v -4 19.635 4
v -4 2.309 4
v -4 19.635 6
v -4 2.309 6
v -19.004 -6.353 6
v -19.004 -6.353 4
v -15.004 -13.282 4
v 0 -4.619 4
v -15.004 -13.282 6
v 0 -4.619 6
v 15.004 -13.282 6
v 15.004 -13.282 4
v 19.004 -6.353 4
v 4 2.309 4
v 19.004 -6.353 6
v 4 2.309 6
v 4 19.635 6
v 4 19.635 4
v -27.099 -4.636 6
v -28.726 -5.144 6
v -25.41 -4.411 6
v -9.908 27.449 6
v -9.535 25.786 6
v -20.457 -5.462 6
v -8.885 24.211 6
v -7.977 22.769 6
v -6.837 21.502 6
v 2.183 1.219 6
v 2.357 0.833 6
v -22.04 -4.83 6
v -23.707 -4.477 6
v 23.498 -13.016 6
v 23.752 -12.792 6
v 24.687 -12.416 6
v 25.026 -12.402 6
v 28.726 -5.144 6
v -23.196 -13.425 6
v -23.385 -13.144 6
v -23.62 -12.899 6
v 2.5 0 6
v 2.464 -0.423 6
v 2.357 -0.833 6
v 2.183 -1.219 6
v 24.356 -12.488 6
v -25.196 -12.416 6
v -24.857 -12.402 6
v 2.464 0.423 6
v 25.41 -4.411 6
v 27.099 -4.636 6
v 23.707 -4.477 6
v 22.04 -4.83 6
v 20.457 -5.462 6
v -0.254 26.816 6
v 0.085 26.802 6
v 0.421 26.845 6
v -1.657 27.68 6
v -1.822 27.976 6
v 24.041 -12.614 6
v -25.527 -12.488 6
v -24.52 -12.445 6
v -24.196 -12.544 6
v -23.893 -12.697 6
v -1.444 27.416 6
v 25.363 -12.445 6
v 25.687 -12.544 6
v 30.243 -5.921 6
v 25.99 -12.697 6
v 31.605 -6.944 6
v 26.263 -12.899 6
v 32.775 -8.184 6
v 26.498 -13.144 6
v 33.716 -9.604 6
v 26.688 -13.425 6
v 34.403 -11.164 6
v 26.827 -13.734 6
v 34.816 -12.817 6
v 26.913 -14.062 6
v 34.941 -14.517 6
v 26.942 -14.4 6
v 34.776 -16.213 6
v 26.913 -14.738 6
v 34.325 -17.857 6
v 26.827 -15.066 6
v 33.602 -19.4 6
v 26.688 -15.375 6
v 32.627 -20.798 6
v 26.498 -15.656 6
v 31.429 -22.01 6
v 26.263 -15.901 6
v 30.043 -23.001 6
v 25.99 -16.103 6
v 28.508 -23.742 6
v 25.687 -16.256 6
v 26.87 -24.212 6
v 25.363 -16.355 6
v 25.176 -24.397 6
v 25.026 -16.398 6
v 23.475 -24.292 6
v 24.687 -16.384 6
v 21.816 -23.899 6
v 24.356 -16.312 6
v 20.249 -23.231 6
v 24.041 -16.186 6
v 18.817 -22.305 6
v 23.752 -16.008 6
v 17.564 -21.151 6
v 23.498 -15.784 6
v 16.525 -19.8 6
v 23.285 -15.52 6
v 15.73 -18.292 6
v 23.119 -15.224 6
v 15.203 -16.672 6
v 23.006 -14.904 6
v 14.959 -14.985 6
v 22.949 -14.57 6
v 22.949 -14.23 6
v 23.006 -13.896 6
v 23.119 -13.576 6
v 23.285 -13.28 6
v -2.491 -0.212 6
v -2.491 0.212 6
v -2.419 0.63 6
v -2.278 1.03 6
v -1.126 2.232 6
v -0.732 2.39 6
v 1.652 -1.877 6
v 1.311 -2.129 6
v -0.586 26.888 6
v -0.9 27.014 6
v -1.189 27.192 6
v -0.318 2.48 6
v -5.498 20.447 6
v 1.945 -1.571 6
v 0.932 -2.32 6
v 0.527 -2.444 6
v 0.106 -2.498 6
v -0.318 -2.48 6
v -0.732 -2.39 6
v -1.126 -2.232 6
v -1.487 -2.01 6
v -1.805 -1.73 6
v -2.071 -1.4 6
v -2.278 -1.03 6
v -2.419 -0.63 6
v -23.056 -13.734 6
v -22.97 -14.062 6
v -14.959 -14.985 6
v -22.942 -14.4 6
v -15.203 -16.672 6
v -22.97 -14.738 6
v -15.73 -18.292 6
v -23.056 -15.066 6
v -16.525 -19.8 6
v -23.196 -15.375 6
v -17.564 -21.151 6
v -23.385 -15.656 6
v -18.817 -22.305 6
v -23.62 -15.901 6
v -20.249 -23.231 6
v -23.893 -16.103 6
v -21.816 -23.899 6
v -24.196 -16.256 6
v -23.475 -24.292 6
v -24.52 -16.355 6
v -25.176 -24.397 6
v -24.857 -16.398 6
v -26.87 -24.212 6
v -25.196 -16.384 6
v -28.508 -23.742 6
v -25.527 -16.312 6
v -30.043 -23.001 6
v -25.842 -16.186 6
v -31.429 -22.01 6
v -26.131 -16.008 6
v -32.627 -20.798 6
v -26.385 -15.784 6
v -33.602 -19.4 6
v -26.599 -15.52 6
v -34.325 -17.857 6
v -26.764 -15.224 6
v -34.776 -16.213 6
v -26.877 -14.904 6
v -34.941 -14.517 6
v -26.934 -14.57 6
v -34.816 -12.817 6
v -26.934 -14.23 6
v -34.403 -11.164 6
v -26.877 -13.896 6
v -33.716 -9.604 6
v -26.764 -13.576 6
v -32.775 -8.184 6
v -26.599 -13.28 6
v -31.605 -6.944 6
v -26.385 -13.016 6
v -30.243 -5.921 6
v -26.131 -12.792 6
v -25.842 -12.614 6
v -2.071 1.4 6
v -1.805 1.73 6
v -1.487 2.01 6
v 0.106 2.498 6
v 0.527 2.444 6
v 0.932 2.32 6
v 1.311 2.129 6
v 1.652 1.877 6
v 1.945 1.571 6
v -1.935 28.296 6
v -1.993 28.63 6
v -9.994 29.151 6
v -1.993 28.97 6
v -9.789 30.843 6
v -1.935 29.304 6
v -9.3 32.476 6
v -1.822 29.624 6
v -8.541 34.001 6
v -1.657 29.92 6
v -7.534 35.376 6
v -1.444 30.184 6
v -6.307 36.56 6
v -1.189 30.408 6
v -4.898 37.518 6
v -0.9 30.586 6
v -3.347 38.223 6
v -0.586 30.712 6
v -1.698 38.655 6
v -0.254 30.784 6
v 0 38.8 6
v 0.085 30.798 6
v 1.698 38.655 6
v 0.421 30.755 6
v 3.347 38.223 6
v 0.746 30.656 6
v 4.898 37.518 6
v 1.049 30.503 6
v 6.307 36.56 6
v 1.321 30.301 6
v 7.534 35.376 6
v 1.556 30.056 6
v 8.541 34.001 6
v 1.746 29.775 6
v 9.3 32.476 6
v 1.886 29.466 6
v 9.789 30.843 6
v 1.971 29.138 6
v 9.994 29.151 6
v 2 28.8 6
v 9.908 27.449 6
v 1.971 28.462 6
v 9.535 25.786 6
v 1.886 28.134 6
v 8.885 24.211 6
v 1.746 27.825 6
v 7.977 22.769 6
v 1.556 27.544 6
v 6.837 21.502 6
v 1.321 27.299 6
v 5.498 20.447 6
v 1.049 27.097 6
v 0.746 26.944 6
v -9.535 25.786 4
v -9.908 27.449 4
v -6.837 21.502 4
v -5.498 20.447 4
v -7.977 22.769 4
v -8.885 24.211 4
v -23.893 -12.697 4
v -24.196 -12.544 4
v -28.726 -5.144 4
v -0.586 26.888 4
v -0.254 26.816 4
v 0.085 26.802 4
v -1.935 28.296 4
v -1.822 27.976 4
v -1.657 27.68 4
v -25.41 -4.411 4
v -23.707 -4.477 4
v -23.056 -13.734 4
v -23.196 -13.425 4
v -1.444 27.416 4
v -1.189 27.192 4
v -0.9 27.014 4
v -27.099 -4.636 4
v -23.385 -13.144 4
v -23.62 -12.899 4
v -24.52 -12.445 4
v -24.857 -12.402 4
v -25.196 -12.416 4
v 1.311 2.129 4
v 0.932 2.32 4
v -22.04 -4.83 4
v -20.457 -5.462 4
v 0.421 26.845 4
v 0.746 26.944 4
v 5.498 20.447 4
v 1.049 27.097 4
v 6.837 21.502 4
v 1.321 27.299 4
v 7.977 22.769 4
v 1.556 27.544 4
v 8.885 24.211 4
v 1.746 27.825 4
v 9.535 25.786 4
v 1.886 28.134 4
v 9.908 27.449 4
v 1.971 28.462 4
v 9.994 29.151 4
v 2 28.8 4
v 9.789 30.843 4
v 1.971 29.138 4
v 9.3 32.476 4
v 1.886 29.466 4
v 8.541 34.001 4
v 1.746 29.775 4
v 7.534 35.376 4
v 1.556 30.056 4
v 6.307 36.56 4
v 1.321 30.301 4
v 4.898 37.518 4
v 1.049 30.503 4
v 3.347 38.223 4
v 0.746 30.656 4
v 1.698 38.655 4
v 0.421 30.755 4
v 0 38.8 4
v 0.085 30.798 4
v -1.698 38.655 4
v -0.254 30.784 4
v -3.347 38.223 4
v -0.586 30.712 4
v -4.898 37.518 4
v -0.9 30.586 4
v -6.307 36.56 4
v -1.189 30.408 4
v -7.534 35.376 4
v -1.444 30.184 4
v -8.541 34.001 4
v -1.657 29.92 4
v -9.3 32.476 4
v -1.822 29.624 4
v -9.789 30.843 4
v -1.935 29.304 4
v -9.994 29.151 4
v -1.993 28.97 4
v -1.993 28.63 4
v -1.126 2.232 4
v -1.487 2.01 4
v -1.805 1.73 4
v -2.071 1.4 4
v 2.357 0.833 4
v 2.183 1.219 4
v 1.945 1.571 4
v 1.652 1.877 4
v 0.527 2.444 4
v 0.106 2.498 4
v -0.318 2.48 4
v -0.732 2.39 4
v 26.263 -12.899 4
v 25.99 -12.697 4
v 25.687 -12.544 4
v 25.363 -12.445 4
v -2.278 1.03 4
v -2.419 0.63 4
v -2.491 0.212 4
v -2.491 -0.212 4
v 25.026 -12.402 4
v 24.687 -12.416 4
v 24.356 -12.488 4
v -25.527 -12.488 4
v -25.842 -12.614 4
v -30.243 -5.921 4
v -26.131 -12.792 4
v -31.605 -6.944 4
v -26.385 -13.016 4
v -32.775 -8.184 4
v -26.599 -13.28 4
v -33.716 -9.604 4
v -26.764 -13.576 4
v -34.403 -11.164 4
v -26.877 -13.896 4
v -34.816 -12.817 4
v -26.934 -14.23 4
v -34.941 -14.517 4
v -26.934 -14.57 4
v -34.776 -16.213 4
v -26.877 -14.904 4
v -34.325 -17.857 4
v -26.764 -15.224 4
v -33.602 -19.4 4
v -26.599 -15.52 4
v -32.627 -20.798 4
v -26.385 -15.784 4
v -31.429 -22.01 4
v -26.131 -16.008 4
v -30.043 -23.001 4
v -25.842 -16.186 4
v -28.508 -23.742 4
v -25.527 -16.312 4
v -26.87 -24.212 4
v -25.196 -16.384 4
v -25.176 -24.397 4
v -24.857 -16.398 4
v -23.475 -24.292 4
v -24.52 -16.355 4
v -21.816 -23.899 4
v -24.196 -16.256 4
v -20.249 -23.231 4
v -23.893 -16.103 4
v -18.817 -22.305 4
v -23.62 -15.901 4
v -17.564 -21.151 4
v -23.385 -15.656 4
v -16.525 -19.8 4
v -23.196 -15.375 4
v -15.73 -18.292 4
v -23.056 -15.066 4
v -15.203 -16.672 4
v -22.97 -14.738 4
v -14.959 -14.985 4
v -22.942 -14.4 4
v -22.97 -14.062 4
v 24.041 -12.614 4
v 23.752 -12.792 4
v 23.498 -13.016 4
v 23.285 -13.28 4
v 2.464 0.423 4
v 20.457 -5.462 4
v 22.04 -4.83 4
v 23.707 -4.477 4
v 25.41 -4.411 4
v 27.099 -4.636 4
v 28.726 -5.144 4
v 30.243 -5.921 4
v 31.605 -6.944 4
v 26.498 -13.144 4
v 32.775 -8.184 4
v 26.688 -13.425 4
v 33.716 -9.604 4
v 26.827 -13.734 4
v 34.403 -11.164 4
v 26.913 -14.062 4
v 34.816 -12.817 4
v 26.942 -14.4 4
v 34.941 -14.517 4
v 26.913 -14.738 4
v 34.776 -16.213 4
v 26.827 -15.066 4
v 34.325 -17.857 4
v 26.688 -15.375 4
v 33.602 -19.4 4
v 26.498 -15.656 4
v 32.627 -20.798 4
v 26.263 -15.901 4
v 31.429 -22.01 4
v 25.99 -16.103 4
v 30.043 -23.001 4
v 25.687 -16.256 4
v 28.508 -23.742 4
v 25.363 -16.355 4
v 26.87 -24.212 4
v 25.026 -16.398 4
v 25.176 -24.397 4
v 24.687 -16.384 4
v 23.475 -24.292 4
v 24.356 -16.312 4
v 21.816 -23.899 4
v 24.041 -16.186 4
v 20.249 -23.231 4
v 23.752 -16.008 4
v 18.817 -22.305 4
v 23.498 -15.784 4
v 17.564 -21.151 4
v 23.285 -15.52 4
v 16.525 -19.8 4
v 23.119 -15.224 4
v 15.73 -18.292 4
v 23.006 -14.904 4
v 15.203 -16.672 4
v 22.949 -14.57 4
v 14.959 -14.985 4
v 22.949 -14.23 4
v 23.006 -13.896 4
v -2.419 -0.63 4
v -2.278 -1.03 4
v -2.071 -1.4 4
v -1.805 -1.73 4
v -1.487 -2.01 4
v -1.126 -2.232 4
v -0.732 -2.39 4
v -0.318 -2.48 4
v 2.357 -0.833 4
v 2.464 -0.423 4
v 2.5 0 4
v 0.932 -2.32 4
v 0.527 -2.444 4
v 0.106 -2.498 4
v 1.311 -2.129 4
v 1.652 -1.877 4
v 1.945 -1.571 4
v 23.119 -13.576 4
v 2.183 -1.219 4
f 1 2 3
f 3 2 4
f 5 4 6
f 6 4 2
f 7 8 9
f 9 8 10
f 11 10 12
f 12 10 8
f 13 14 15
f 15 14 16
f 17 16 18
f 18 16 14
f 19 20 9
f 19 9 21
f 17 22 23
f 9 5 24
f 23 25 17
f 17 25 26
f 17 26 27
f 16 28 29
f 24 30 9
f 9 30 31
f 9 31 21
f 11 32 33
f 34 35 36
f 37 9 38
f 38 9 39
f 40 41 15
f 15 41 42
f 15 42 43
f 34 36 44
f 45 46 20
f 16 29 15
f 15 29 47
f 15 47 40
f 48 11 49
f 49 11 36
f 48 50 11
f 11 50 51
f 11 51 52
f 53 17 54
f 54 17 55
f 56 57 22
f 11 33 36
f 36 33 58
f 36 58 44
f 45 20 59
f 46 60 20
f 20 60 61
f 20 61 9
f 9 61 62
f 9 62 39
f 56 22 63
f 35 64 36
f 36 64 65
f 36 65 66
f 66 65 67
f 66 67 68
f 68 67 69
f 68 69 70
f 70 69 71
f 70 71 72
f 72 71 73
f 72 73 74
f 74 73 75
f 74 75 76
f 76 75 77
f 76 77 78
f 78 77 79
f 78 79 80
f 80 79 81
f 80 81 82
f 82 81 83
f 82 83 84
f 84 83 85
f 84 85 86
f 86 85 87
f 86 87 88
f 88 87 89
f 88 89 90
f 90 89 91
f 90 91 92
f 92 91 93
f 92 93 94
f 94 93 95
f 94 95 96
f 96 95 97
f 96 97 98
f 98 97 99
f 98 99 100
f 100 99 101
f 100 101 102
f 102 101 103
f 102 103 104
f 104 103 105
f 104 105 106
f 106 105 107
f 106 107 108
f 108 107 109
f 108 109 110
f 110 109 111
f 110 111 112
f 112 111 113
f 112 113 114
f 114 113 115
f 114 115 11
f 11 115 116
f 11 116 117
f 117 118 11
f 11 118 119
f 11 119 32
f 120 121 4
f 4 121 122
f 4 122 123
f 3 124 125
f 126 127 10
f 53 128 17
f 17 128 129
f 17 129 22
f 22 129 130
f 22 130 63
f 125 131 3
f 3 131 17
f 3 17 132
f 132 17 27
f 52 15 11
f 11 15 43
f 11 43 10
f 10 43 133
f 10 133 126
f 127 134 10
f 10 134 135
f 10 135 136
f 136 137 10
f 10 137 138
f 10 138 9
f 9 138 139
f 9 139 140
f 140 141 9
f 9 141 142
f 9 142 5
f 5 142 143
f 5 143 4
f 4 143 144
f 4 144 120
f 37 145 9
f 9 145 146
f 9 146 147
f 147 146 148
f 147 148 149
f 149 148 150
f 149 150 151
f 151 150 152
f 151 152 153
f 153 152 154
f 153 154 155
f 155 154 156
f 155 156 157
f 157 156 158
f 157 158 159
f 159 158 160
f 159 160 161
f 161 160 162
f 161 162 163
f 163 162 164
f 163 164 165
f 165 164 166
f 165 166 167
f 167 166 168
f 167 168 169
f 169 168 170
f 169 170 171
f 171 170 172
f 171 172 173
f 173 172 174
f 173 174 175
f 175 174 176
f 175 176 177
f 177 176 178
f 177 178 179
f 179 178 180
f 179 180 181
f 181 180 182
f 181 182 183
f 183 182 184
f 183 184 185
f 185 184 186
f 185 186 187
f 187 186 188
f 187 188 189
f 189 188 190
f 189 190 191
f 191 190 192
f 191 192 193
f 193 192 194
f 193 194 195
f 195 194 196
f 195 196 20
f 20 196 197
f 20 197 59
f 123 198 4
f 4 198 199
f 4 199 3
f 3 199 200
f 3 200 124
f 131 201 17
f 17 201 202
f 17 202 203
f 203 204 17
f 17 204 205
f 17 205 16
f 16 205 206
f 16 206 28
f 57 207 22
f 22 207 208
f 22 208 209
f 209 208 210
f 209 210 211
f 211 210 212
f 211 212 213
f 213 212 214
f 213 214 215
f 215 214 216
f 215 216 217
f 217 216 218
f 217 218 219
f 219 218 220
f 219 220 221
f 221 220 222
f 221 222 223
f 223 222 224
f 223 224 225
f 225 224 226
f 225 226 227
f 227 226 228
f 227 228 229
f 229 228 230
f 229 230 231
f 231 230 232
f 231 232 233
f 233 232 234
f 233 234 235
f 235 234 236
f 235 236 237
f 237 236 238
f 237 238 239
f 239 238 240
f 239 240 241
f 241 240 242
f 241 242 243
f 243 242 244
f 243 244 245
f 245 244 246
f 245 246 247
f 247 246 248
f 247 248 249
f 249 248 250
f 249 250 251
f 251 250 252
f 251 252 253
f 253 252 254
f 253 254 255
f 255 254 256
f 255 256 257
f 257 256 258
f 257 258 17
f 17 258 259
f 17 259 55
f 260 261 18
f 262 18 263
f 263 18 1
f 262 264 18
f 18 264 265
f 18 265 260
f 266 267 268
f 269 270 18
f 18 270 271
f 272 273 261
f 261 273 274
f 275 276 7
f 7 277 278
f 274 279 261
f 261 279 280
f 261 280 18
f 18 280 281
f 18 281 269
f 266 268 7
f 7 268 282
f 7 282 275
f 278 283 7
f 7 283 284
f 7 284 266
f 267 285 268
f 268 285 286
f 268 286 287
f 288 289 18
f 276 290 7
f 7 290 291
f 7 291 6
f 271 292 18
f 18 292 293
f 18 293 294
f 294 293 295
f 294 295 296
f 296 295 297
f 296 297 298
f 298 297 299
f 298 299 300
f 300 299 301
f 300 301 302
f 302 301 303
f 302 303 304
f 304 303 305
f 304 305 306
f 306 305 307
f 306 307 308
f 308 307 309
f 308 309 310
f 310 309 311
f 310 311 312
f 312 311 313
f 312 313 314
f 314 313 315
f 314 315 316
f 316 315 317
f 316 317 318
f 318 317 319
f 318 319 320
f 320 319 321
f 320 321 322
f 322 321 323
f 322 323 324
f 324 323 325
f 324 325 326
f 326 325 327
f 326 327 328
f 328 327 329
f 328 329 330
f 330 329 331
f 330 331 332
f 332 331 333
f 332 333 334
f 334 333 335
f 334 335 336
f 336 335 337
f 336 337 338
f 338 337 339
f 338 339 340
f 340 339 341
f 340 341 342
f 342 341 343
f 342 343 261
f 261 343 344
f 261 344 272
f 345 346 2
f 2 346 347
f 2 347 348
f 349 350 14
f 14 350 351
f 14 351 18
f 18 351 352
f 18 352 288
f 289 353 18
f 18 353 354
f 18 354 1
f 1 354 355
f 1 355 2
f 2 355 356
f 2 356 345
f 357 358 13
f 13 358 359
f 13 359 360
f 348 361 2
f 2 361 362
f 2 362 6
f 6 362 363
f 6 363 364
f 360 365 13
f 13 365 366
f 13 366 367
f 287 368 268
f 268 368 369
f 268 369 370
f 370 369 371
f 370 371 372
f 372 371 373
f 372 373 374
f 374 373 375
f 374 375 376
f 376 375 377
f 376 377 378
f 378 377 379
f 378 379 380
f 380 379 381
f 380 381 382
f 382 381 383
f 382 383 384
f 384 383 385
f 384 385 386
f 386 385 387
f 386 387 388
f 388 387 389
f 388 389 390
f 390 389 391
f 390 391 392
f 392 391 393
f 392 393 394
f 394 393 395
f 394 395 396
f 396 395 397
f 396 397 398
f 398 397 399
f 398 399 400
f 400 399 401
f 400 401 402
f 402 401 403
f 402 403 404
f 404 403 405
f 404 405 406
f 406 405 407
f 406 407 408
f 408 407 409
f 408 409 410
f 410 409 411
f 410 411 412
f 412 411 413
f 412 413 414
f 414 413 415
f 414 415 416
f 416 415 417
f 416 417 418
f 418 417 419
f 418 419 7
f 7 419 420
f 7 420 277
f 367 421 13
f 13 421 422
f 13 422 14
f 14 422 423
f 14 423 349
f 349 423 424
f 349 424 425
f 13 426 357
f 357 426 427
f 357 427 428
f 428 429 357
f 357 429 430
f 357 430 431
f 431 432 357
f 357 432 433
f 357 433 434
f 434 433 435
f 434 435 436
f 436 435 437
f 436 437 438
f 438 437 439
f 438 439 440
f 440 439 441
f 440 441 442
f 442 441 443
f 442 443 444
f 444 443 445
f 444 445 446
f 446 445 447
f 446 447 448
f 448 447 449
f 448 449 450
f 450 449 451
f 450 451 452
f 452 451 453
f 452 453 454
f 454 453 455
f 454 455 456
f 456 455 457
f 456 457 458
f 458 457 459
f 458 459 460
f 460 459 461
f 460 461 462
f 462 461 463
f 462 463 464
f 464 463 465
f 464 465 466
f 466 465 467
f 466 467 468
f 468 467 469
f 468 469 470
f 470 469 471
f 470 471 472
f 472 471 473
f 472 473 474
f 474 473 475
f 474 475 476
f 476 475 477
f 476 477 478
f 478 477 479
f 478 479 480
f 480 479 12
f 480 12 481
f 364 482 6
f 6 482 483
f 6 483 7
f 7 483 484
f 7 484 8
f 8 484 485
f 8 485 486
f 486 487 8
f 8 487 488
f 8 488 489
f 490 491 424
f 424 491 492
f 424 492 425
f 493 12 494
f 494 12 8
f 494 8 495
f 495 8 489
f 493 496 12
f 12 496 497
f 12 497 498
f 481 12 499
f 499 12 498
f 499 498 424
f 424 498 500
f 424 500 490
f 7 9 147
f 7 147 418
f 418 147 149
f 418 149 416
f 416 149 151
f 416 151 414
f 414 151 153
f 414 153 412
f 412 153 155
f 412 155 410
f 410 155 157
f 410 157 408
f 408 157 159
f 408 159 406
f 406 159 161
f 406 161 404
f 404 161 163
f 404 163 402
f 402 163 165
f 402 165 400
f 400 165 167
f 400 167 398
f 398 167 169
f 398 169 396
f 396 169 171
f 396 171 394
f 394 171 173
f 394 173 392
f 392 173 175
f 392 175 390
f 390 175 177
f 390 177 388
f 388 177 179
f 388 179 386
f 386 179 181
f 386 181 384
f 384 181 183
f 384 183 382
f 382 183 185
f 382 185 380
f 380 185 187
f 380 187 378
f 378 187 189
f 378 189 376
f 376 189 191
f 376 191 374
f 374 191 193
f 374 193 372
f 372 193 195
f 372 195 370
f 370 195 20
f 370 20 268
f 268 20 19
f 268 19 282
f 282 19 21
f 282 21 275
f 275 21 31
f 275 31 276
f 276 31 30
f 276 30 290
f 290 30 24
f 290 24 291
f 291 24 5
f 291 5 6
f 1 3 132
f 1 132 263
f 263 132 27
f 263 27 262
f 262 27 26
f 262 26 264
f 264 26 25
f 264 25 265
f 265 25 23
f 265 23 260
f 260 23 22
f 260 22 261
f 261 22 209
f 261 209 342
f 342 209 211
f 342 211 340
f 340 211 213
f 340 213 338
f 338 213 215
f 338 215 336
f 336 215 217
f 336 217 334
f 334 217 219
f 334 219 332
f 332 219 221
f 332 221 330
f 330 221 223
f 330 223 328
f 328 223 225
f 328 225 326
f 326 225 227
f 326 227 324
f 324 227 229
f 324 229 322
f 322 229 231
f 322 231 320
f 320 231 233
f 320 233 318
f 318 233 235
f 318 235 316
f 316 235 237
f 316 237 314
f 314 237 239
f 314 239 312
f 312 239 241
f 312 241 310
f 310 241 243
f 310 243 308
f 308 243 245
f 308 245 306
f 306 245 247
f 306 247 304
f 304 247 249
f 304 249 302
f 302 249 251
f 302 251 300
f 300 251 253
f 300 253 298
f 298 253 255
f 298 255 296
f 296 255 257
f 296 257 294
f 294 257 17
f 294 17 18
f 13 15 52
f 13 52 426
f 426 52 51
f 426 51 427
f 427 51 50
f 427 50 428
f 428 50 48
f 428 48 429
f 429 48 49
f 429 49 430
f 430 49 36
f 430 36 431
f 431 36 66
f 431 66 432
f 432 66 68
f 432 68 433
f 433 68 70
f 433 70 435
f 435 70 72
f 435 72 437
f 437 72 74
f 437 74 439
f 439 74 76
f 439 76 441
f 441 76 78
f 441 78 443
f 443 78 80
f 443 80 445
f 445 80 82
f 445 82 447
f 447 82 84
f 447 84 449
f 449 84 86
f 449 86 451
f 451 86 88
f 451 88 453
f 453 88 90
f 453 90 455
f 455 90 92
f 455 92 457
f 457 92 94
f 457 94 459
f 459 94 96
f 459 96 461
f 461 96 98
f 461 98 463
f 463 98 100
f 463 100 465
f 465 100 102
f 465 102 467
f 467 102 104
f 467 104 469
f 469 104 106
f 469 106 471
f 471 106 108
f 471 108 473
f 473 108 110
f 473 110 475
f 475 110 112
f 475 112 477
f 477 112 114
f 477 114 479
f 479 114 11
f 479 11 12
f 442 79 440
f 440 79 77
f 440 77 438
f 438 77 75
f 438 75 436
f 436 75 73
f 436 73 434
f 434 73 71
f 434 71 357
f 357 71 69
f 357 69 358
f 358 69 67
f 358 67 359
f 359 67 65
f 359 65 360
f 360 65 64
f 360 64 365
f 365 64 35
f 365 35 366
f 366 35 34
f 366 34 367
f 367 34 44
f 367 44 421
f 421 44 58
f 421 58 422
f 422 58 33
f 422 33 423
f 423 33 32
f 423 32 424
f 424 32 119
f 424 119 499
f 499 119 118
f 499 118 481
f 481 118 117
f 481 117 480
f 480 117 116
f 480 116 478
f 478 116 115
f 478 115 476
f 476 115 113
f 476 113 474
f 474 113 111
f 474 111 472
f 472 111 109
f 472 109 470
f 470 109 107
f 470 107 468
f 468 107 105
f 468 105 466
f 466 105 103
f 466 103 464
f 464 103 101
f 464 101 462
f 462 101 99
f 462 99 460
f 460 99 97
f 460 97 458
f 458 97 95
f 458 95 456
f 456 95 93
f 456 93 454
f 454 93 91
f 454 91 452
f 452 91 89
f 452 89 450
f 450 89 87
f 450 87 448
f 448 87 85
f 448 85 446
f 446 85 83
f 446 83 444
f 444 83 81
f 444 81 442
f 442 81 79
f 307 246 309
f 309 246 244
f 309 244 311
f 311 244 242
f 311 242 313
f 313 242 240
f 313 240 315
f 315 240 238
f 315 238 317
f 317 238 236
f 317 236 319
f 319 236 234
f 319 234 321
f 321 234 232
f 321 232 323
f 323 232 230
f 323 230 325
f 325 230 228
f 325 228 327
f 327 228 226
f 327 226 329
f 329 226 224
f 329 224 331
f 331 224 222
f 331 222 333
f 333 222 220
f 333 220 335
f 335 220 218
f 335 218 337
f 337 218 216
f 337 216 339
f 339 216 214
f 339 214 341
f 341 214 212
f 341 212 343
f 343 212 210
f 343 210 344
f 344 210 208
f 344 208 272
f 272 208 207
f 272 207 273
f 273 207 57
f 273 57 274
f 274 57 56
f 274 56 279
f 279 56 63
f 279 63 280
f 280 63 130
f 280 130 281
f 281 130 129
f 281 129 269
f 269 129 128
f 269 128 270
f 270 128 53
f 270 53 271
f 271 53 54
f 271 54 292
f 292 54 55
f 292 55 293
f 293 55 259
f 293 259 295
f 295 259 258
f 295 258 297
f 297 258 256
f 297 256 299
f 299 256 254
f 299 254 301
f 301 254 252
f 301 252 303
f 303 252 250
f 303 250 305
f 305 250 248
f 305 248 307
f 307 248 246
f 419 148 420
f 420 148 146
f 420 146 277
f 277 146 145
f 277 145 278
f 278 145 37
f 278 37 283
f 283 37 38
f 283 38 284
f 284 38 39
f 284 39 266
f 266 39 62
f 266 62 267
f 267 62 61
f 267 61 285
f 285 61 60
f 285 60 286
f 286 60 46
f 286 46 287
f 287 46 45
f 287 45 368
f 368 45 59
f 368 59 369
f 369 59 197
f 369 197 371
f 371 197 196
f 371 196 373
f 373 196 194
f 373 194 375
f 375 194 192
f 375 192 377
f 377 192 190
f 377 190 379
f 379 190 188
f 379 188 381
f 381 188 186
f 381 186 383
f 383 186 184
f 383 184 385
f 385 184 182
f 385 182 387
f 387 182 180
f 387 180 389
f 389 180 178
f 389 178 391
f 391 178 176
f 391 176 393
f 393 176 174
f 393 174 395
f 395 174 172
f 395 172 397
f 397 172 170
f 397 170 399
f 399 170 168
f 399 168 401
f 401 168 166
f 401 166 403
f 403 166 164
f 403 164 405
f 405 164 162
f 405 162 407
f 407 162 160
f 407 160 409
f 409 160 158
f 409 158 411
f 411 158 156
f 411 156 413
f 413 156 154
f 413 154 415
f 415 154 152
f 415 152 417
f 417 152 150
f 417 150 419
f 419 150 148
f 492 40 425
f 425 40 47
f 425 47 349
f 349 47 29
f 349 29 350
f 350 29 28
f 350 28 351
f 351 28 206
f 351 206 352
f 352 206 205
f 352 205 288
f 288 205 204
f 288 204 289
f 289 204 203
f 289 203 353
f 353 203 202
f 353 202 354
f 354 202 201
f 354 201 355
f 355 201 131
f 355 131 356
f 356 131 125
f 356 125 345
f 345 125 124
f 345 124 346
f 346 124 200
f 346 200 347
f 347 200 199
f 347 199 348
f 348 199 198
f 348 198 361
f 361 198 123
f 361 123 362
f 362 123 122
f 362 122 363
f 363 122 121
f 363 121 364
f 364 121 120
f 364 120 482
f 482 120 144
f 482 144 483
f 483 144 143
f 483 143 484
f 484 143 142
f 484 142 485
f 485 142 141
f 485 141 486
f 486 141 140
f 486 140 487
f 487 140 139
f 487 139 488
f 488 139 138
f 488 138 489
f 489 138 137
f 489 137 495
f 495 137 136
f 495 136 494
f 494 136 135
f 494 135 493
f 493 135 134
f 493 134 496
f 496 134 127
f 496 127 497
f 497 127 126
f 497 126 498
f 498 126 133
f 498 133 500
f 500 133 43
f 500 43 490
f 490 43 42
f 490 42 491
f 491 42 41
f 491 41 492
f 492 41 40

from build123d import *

# Parameters (mm, degrees)
BOSS_EXTRUDE2_DEPTH = 10
SKETCH3_R           = 50
BOSS_EXTRUDE3_DEPTH = 10
SKETCH4_R           = 10
BOSS_EXTRUDE4_DEPTH = 90
CUT_EXTRUDE1_START  = -30
SKETCH5_R           = 10
CUT_EXTRUDE1_DEPTH  = 30
SKETCH6_R           = 13
CUT_EXTRUDE2_DEPTH  = 10
SKETCH7_R           = 10
BOSS_EXTRUDE5_DEPTH = 30
SKETCH8_R           = 20.369169003
BOSS_EXTRUDE6_DEPTH = 10
CUT_EXTRUDE3_START  = -100
SKETCH9_R           = 10
CUT_EXTRUDE3_DEPTH  = 100
SKETCH10_R          = 10
CUT_EXTRUDE4_DEPTH  = 10
SKETCH11_R          = 12.5
CUT_EXTRUDE5_DEPTH  = 10
SCALE1_SCALE        = 0.2


with BuildPart() as part:
    # Sketch1 → Boss-Extrude2 (new body)
    with BuildSketch(Plane.XY):
        Polygon((20, 144), (-20, 144), (-20, 11.547005384), (-134.707658145, -54.679491924), (-114.707658145, -89.320508076), (0, -23.094010768), (114.707658145, -89.320508076), (134.707658145, -54.679491924), (20, 11.547005384), align=None)
    extrude(amount=BOSS_EXTRUDE2_DEPTH)

    # Sketch3 → Boss-Extrude3 (add)
    with BuildSketch(Plane.XY.offset(10)):
        with Locations((-124.707658145, -72)):
            Circle(SKETCH3_R)
        with Locations((0, 144)):
            Circle(SKETCH3_R)
        with Locations((124.707658145, -72)):
            Circle(SKETCH3_R)
    extrude(amount=-BOSS_EXTRUDE3_DEPTH)

    # Sketch4 → Boss-Extrude4 (add)
    with BuildSketch(Plane.XY.offset(10)):
        with Locations(Location((0, 144, 0), (0, 0, 180))):
            Circle(SKETCH4_R)
        with Locations(Location((124.707658145, -72, 0), (0, 0, 180))):
            Circle(SKETCH4_R)
        with Locations(Location((-124.707658145, -72, 0), (0, 0, 180))):
            Circle(SKETCH4_R)
    extrude(amount=BOSS_EXTRUDE4_DEPTH)

    # Sketch5 → Cut-Extrude1 (cut)
    with BuildSketch(Plane.XY.offset(100).offset(CUT_EXTRUDE1_START)):
        with Locations(Location((0, 144, 0), (0, 0, 180))):
            Circle(SKETCH5_R)
    extrude(amount=CUT_EXTRUDE1_DEPTH, mode=Mode.SUBTRACT)

    # Sketch6 → Cut-Extrude2 (cut)
    with BuildSketch(Plane.XY.offset(10)):
        Circle(SKETCH6_R)
    extrude(amount=-CUT_EXTRUDE2_DEPTH, mode=Mode.SUBTRACT)

    # Sketch7 → Boss-Extrude5 (add)
    with BuildSketch(Plane.XY.offset(70)):
        with Locations(Location((0, 144, 0), (0, 0, 180))):
            Circle(SKETCH7_R)
    extrude(amount=BOSS_EXTRUDE5_DEPTH)

    # Sketch8 → Boss-Extrude6 (add)
    with BuildSketch(Plane.XY.offset(10)):
        Circle(SKETCH8_R)
    extrude(amount=-BOSS_EXTRUDE6_DEPTH)

    # Sketch9 → Cut-Extrude3 (cut)
    with BuildSketch(Plane.XY.offset(100).offset(CUT_EXTRUDE3_START)):
        with Locations((-124.707658145, -72)):
            Circle(SKETCH9_R)
        with Locations((0, 144)):
            Circle(SKETCH9_R)
        with Locations((124.707658145, -72)):
            Circle(SKETCH9_R)
    extrude(amount=CUT_EXTRUDE3_DEPTH, mode=Mode.SUBTRACT)

    # Sketch10 → Cut-Extrude4 (cut)
    with BuildSketch(Plane.XY.offset(10)):
        Circle(SKETCH10_R)
    extrude(amount=-CUT_EXTRUDE4_DEPTH, mode=Mode.SUBTRACT)

    # Sketch11 → Cut-Extrude5 (cut)
    with BuildSketch(Plane.XY.offset(10)):
        Circle(SKETCH11_R)
    extrude(amount=-CUT_EXTRUDE5_DEPTH, mode=Mode.SUBTRACT)


with BuildPart() as part_1:
    # Scale1: scaled about (0, 0, 5)
    add(part.part.scale(SCALE1_SCALE).moved(Location((0, 0, 4))))


solid = part_1.part
